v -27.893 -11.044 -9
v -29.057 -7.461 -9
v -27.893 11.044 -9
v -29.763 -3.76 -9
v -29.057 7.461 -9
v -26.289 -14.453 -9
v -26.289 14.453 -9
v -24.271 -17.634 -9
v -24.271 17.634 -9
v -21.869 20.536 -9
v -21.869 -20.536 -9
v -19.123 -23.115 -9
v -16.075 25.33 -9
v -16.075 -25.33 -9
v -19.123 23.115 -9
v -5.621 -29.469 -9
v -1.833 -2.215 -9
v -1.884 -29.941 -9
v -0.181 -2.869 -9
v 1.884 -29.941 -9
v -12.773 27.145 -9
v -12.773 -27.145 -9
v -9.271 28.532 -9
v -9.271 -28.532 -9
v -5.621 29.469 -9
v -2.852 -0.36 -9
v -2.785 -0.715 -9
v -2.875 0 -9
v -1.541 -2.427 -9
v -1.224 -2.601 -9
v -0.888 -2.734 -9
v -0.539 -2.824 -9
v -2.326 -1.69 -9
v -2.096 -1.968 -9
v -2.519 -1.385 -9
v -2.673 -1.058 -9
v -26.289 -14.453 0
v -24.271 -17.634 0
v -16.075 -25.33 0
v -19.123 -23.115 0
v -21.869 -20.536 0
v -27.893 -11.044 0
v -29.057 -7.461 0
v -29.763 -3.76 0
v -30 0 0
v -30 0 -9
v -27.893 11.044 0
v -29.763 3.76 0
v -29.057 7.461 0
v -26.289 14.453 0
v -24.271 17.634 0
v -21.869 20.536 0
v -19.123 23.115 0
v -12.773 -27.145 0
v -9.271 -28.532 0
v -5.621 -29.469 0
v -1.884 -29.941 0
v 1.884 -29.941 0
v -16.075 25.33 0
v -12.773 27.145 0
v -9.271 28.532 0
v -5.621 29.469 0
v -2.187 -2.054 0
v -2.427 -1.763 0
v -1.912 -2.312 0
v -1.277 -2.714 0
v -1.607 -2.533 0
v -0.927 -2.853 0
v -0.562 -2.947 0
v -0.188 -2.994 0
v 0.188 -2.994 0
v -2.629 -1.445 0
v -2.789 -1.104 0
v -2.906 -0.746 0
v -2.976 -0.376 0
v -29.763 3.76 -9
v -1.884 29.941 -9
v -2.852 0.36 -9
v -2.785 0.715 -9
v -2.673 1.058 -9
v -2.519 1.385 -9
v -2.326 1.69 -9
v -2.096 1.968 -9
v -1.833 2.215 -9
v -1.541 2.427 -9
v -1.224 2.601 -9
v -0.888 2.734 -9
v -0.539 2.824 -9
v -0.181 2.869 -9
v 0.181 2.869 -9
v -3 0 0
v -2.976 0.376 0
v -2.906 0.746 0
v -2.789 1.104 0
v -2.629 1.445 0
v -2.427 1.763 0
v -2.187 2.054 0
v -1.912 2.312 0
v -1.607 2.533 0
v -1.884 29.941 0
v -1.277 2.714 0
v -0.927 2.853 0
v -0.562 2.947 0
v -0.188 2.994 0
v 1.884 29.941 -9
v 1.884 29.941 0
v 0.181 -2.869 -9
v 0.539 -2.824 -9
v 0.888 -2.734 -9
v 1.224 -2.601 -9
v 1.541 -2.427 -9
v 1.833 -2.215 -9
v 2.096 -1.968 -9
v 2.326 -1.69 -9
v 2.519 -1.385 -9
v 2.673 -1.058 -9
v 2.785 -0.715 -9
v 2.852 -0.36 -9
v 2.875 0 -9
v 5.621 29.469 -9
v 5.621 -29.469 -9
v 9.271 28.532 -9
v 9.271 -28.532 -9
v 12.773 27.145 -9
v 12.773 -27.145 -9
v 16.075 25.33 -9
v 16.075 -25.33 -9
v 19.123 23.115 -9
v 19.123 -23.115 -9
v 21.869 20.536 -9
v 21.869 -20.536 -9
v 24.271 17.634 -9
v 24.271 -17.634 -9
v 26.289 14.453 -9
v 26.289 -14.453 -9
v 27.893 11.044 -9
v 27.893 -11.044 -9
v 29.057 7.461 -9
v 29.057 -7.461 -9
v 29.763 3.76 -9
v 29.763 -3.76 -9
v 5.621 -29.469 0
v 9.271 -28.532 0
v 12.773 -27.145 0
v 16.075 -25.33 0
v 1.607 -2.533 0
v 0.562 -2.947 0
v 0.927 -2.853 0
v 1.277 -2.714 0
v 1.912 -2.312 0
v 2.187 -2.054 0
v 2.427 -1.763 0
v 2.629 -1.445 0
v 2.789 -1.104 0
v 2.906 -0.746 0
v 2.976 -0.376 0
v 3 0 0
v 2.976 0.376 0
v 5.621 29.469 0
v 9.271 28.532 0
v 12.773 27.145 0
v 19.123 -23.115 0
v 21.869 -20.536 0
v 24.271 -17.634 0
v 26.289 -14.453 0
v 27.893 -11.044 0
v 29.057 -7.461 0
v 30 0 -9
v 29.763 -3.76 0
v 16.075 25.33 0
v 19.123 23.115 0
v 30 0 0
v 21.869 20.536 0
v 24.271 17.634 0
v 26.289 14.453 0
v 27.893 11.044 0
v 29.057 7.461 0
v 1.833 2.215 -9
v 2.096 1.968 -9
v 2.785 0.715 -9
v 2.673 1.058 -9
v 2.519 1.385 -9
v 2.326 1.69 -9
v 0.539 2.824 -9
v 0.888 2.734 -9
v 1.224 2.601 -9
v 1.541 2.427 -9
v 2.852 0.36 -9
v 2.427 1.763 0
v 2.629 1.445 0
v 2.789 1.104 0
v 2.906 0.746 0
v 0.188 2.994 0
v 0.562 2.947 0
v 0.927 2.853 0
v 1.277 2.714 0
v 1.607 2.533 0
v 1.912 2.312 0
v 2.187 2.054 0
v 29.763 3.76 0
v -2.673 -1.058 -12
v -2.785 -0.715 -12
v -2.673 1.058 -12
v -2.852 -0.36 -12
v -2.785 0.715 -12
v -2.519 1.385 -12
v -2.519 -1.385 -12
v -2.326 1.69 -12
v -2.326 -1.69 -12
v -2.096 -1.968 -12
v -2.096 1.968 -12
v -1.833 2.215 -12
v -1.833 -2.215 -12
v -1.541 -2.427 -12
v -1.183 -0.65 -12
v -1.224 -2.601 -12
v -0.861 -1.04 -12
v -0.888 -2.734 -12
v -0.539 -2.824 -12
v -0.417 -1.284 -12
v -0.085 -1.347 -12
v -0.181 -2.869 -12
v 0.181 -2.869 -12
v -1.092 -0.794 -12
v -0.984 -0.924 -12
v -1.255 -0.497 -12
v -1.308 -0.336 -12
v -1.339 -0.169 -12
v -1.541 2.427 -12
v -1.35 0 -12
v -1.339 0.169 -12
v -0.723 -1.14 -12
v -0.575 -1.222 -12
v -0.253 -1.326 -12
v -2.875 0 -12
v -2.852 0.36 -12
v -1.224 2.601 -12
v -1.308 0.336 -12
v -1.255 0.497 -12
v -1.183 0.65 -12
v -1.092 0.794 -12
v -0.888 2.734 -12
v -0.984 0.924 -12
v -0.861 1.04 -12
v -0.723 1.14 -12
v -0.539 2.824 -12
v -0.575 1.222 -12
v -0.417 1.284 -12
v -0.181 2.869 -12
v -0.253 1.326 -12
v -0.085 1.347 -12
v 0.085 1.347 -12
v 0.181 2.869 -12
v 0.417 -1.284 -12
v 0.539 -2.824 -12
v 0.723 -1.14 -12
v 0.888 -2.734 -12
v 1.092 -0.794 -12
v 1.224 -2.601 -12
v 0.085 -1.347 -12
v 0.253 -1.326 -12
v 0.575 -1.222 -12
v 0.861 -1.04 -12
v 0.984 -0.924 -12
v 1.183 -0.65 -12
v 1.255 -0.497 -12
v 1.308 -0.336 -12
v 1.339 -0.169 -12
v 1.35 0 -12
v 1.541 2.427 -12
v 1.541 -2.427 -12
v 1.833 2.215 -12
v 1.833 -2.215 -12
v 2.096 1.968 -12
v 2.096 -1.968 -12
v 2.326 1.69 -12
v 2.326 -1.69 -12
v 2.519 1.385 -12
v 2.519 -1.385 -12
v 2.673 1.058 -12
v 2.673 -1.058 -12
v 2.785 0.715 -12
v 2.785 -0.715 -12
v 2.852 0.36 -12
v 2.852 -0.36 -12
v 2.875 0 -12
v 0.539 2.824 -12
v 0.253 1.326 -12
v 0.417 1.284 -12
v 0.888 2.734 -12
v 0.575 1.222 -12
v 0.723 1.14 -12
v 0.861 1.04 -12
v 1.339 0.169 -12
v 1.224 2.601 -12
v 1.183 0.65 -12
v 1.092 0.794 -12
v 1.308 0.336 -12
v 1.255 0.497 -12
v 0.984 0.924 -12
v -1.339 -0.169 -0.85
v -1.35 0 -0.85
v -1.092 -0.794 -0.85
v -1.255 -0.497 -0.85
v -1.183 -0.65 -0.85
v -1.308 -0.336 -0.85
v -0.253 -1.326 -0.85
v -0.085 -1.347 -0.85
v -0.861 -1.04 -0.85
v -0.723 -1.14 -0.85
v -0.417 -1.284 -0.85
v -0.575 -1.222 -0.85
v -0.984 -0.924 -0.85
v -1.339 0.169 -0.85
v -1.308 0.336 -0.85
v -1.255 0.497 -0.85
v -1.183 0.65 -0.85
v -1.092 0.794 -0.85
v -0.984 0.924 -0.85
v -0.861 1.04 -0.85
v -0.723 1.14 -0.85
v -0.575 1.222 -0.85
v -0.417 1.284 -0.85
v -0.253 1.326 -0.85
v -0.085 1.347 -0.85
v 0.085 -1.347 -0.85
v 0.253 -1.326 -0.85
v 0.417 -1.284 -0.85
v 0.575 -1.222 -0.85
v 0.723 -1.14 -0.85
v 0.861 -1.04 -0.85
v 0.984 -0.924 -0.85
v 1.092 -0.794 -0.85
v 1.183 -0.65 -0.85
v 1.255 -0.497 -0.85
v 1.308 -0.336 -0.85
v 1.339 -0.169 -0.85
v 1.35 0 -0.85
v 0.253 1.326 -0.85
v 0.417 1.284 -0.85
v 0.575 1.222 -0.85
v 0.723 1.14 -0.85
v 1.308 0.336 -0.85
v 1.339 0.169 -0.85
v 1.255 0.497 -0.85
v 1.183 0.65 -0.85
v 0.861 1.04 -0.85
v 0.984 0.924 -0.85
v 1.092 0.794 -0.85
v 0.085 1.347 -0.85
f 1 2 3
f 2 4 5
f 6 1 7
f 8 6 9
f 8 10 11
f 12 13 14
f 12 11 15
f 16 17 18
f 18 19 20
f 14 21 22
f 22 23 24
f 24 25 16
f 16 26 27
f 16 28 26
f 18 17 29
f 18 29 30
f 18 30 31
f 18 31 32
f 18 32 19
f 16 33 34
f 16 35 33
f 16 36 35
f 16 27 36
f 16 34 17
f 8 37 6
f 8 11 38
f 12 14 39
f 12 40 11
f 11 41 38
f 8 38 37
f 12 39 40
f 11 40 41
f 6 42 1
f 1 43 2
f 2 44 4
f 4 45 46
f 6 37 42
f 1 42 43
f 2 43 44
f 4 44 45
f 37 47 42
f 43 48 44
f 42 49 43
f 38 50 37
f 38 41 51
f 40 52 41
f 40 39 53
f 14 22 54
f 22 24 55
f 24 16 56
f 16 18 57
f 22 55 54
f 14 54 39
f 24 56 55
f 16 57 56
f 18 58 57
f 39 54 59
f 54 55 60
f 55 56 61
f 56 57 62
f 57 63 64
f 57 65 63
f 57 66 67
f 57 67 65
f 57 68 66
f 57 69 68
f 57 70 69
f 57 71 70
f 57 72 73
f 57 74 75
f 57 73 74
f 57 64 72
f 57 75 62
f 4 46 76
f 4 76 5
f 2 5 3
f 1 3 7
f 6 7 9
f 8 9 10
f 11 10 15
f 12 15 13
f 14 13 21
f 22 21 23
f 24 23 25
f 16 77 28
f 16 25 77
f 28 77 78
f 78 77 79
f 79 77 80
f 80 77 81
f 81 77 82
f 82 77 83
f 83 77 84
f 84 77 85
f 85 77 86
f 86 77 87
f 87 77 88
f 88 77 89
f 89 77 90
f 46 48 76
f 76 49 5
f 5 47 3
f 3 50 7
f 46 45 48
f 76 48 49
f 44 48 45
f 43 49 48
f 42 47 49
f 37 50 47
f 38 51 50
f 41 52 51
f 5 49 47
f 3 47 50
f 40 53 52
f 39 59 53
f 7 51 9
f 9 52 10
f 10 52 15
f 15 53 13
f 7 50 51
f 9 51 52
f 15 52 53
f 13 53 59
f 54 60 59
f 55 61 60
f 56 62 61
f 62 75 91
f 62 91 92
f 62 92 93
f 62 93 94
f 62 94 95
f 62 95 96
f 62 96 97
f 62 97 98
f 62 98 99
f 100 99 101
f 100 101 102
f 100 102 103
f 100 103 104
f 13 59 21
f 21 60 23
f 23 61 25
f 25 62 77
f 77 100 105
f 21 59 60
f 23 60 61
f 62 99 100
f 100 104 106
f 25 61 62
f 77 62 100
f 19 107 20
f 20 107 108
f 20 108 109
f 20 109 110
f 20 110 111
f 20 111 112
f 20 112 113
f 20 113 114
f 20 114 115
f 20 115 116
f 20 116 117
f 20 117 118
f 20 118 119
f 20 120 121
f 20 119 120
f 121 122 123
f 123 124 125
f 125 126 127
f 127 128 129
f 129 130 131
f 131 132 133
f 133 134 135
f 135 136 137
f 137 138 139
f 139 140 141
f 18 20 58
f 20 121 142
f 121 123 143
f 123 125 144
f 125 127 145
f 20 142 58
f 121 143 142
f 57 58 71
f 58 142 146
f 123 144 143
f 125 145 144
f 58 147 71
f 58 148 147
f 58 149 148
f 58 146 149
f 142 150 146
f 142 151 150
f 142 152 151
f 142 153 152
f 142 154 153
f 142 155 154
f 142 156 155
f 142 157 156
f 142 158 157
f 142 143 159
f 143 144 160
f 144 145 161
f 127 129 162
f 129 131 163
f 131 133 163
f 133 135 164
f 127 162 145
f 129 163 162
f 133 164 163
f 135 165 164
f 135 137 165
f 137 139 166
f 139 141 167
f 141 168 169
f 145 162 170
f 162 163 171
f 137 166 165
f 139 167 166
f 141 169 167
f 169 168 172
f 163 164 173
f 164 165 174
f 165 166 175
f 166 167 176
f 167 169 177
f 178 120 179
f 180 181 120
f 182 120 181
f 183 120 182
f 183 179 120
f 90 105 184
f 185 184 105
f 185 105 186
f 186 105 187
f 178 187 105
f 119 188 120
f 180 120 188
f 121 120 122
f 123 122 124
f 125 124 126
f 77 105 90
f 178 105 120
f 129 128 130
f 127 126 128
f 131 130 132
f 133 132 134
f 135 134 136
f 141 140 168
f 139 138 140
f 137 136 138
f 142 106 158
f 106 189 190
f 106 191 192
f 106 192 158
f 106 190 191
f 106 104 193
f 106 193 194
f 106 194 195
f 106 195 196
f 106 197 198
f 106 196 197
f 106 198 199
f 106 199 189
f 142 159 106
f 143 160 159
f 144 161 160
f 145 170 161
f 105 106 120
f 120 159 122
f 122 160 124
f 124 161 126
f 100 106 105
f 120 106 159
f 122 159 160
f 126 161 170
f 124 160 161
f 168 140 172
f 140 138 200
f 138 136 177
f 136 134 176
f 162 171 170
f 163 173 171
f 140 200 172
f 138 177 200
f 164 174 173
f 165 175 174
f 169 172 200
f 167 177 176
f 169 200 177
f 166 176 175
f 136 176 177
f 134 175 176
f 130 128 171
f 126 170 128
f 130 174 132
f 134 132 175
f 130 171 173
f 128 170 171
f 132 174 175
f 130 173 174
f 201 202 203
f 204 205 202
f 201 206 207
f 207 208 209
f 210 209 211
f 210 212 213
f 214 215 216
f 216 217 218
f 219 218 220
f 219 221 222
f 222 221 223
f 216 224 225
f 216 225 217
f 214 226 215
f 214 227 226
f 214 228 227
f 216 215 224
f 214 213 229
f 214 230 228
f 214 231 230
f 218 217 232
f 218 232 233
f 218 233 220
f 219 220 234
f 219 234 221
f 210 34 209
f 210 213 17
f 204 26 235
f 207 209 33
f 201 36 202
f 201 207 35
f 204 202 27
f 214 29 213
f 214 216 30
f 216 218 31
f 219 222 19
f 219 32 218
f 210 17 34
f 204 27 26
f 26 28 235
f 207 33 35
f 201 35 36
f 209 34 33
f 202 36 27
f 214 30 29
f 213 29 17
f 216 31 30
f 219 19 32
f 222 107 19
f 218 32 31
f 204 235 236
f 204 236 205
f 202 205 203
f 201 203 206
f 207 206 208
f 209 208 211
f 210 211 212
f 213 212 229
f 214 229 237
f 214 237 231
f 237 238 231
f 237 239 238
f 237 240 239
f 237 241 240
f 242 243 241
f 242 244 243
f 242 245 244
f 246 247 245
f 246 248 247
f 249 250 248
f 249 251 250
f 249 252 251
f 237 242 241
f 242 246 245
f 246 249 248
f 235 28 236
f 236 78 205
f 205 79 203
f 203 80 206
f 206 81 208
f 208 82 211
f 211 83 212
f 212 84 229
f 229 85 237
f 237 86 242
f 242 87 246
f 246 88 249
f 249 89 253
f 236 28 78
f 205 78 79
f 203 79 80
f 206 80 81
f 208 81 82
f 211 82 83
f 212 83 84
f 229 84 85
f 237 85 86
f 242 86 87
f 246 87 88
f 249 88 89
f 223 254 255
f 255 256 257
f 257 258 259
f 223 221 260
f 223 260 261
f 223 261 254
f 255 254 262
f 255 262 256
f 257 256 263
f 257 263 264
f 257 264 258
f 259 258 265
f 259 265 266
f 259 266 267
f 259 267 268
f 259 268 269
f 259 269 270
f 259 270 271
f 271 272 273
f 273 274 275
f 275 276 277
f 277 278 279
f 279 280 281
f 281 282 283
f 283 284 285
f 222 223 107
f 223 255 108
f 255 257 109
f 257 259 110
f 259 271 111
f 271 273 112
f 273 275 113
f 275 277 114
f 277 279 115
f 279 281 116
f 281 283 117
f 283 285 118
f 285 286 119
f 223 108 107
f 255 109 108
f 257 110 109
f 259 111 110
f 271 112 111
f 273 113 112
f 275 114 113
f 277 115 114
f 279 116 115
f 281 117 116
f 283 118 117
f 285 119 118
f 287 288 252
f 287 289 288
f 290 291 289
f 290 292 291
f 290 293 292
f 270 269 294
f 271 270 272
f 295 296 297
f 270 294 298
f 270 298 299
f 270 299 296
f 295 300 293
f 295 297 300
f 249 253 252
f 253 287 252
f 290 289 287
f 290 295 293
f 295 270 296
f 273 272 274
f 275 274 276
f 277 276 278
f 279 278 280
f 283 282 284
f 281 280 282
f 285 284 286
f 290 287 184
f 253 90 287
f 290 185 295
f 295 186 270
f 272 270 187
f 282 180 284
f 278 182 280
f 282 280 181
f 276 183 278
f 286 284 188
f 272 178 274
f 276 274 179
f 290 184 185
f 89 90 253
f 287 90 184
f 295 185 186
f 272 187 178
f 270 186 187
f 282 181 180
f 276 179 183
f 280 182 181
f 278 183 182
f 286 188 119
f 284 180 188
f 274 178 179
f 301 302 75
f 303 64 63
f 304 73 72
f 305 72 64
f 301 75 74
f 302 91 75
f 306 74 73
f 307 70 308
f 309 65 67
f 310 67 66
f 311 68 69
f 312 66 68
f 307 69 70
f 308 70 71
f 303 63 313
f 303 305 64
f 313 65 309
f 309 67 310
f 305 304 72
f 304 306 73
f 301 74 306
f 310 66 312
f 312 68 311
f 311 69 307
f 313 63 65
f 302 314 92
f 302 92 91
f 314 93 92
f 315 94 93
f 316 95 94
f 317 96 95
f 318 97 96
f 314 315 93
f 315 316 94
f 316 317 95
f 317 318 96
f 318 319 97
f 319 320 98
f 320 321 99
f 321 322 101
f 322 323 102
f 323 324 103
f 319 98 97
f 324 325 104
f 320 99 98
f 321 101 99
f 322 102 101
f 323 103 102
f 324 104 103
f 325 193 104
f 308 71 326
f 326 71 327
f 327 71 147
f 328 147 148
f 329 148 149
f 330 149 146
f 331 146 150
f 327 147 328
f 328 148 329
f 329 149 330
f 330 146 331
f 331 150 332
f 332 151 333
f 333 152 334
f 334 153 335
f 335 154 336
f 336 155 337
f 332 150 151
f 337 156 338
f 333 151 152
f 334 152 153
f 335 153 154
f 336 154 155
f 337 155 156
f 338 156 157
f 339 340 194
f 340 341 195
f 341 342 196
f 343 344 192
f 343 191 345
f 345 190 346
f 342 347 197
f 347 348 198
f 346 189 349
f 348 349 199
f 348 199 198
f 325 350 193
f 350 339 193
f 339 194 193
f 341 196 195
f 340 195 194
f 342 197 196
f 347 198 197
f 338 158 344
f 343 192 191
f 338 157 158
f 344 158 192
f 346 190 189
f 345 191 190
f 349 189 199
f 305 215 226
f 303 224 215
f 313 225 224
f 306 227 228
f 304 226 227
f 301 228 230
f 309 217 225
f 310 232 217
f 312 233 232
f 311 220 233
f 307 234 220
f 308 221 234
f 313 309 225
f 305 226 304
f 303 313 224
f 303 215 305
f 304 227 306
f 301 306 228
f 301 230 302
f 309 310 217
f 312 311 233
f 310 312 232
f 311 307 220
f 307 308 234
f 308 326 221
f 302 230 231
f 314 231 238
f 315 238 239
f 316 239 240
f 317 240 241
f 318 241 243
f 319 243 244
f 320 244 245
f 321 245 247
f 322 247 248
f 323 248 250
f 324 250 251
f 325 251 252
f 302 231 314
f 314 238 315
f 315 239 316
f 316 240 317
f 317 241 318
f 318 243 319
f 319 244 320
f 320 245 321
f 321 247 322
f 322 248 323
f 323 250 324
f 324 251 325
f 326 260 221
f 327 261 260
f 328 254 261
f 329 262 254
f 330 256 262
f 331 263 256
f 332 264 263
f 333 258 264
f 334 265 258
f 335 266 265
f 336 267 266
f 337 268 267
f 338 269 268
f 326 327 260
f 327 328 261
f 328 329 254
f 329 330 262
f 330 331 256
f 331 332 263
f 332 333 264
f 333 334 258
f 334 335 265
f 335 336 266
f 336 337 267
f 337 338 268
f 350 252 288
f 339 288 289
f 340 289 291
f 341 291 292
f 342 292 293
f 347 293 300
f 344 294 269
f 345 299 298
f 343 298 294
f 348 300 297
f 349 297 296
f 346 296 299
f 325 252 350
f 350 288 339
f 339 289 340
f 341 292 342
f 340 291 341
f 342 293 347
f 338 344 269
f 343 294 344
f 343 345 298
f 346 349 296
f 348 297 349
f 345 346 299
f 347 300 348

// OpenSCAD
$fn = 50;


difference() {
	union() {
		translate(v = [0, 0, -9.0000000000]) {
			cylinder(h = 9, r = 30.0000000000);
		}
		#translate(v = [0, 0, -12.0000000000]) {
			cylinder(h = 12, r = 2.8750000000);
		}
	}
	union() {
		translate(v = [0, 0, 0]) {
			rotate(a = [0, 0, 0]) {
				difference() {
					union() {
						translate(v = [0, 0, -12.0000000000]) {
							cylinder(h = 12, r = 1.0000000000);
						}
						translate(v = [0, 0, -0.8500000000]) {
							cylinder(h = 0.8500000000, r1 = 1.3500000000, r2 = 3.0000000000);
						}
						translate(v = [0, 0, -12.0000000000]) {
							cylinder(h = 12, r = 1.3500000000);
						}
						translate(v = [0, 0, -12.0000000000]) {
							cylinder(h = 12, r = 1.0000000000);
						}
					}
					union();
				}
			}
		}
	}
}
